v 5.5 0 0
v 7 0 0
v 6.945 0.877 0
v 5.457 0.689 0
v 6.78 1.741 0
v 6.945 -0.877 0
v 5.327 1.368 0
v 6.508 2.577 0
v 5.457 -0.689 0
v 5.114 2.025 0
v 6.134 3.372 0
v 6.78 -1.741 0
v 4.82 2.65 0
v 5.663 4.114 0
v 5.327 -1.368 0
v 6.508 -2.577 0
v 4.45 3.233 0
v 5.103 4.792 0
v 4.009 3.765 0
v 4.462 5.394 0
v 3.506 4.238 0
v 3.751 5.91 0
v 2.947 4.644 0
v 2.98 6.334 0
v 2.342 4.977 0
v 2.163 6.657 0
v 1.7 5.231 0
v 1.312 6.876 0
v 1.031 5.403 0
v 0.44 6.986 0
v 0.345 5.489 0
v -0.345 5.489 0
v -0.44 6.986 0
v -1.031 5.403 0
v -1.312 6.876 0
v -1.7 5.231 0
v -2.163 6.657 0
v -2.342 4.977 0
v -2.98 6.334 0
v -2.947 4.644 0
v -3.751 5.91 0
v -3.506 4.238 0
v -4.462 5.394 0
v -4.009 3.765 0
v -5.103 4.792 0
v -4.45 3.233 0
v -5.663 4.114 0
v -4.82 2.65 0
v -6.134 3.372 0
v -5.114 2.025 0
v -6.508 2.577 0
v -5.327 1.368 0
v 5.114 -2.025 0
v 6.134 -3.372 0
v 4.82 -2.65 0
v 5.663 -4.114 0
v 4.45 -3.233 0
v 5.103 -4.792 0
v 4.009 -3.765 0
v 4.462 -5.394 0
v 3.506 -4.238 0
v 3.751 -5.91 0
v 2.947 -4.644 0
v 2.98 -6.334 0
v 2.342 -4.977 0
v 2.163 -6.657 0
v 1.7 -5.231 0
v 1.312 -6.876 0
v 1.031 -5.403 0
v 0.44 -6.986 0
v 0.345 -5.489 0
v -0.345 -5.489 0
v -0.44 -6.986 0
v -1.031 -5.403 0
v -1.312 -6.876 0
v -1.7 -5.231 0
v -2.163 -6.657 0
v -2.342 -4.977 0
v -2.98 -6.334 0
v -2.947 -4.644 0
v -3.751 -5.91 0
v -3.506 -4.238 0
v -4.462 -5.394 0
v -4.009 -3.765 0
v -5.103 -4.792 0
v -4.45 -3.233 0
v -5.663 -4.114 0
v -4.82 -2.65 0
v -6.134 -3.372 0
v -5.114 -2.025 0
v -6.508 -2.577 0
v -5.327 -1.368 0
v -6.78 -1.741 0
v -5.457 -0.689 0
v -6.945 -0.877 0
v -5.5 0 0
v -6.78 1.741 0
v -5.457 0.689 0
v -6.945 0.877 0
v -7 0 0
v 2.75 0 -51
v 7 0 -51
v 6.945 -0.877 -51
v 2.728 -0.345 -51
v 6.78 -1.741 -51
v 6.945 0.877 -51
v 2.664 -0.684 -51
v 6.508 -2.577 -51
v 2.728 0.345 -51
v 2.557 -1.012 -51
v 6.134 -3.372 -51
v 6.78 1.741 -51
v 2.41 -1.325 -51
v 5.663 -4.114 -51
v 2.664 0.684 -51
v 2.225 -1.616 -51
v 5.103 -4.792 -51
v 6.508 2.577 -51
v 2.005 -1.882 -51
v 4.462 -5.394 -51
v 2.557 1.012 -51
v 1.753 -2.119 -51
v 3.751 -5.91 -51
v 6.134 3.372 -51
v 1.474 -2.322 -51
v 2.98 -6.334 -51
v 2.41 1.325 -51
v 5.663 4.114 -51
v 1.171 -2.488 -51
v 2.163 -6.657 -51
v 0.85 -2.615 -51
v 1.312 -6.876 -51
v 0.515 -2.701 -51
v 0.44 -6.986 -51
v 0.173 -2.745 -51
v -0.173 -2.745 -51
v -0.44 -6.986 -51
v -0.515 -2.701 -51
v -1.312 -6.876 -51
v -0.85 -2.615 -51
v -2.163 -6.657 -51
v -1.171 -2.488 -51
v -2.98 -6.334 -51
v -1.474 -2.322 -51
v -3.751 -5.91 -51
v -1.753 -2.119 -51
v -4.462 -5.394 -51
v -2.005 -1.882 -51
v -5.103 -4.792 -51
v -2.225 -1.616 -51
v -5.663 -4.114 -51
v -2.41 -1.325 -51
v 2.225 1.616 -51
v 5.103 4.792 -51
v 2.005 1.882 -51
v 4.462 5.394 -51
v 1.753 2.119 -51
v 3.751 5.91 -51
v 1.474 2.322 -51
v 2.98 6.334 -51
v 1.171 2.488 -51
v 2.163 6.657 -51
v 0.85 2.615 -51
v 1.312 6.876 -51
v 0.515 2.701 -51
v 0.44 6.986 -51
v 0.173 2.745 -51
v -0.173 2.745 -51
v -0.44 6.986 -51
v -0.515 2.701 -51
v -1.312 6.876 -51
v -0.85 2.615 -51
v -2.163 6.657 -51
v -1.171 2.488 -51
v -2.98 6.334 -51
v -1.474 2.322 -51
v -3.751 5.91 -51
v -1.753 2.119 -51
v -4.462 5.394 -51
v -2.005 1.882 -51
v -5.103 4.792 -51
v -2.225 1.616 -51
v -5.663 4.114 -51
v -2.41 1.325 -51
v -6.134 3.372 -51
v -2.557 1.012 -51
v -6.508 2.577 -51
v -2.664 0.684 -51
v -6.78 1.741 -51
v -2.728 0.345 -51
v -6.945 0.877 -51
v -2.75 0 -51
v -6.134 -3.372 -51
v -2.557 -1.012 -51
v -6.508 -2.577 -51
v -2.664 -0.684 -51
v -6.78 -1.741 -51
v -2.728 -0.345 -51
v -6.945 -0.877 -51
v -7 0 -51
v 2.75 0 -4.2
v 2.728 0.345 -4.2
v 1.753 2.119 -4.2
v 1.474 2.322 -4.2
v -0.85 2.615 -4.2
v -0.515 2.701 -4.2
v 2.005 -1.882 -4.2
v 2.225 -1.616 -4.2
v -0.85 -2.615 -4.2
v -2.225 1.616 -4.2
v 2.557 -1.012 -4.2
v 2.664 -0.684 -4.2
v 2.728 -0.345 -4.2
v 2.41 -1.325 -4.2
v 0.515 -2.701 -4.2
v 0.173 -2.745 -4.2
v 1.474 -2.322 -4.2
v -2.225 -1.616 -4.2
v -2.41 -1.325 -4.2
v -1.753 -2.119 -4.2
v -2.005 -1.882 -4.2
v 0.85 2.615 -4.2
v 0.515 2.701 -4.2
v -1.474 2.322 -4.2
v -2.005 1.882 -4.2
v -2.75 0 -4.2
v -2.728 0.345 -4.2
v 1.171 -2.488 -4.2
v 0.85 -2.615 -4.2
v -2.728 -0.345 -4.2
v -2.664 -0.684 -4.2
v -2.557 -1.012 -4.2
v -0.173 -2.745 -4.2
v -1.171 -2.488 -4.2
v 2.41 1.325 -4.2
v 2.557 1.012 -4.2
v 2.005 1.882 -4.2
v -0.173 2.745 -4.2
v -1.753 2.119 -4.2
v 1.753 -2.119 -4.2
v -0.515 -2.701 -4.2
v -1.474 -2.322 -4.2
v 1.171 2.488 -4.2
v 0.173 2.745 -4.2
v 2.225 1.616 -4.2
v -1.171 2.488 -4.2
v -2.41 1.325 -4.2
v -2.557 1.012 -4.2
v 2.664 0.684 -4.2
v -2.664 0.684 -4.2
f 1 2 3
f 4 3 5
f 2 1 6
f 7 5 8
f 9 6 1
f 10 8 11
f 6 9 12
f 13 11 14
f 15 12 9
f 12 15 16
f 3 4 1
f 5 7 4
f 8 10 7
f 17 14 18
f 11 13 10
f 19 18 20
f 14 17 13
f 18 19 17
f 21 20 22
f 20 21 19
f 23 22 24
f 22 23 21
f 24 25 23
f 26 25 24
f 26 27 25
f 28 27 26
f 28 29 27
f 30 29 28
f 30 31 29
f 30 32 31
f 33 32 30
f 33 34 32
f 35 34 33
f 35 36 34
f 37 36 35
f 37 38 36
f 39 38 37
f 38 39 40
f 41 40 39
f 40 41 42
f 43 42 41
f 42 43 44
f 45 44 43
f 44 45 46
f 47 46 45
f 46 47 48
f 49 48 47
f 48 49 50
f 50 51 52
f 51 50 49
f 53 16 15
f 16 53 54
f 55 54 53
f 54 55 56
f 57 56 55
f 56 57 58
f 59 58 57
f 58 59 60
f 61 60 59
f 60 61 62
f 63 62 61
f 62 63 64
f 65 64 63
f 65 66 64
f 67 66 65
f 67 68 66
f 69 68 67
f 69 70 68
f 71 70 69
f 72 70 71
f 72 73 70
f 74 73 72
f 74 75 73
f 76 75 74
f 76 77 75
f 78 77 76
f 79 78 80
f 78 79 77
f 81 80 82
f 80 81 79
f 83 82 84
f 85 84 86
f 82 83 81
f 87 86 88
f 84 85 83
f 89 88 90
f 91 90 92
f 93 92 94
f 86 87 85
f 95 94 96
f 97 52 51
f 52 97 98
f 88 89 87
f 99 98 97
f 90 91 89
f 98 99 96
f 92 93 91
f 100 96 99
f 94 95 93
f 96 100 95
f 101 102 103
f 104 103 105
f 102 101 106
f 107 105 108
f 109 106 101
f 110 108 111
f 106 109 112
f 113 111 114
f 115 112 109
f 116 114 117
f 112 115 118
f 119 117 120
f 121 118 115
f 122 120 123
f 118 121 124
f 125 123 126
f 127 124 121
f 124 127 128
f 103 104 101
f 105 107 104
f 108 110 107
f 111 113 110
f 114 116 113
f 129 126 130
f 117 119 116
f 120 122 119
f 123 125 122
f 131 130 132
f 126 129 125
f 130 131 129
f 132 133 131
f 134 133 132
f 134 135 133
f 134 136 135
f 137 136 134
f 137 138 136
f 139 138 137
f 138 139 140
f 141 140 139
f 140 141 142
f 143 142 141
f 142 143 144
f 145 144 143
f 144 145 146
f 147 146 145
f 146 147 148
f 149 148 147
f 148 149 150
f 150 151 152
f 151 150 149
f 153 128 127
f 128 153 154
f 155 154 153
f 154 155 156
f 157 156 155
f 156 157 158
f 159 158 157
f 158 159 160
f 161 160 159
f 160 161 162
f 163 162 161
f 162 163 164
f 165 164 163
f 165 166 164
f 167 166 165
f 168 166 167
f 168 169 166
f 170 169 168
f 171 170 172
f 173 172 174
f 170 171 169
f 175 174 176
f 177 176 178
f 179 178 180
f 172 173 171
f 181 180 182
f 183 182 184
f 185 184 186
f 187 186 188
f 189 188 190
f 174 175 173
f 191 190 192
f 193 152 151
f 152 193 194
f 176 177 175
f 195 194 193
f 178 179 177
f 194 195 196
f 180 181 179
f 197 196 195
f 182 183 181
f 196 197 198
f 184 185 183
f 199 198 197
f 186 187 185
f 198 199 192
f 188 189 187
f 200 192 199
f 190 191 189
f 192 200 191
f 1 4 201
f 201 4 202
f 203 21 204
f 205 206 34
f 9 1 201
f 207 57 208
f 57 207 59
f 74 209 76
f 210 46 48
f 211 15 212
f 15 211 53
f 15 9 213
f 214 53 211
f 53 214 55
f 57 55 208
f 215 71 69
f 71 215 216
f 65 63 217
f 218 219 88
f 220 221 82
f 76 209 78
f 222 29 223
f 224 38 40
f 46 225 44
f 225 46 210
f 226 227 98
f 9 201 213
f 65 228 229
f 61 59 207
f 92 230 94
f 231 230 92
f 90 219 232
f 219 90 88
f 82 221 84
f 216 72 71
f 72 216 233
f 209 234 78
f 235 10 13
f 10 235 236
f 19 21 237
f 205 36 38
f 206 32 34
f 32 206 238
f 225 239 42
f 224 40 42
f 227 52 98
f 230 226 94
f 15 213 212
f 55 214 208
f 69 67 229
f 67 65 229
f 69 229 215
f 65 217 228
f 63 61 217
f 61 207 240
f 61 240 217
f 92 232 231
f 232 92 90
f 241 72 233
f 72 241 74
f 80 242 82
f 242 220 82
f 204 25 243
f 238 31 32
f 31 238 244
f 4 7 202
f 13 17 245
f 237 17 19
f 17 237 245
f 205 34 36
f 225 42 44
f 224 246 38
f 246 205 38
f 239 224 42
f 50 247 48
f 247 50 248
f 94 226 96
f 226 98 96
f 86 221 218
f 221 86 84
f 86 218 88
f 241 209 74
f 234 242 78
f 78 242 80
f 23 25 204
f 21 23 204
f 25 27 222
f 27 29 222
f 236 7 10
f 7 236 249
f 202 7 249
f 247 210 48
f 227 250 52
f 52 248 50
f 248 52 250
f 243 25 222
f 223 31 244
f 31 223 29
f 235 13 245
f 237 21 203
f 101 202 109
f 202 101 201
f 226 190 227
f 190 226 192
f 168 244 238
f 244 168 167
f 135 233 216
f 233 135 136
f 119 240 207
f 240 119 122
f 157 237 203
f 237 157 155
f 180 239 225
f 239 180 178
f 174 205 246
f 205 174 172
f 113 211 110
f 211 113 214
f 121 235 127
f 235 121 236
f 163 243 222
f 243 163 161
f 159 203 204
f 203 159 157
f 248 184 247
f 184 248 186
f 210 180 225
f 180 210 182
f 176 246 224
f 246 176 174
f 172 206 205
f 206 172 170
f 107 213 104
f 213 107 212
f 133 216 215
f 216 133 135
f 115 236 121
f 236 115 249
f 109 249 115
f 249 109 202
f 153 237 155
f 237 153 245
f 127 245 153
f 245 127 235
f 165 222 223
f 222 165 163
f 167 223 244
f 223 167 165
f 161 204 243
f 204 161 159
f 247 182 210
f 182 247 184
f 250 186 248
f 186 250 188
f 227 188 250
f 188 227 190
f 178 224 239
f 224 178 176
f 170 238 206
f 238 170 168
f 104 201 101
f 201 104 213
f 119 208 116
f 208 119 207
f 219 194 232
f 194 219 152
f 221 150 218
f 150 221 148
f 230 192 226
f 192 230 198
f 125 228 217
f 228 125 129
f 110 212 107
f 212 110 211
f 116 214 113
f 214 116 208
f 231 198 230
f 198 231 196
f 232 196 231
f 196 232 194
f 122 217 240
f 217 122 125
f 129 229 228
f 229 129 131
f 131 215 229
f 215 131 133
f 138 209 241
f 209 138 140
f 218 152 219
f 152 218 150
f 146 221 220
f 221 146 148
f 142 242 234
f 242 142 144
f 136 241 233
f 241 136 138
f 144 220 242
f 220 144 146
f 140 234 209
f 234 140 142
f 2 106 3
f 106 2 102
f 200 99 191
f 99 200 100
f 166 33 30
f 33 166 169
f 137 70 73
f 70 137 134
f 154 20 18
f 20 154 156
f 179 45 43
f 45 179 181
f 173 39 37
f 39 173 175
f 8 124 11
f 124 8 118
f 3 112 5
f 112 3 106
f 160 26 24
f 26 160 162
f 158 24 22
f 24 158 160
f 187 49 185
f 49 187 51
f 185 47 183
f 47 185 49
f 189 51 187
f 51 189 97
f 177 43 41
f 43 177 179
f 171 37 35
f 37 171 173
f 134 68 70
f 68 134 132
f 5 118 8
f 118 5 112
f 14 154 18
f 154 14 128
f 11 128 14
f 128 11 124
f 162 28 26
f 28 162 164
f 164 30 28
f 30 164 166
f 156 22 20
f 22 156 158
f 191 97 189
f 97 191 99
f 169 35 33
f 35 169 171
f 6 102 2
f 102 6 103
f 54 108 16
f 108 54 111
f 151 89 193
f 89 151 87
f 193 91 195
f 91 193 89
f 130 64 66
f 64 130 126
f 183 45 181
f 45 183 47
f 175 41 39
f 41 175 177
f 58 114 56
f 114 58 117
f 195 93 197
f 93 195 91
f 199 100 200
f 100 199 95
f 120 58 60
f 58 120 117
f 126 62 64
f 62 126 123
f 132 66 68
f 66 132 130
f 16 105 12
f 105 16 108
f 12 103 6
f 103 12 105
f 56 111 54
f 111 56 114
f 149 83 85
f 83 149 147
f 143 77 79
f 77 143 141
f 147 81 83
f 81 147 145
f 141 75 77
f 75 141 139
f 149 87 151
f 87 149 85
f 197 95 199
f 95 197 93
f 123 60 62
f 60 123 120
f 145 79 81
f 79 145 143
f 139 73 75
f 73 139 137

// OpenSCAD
$fn = 50;


difference() {
	union() {
		translate(v = [0, 0, -51.0000000000]) {
			cylinder(h = 51, r = 7.0000000000);
		}
		cylinder(h = 0, r = 17.0000000000);
	}
	union() {
		translate(v = [0, 0, 0]) {
			rotate(a = [0, 0, 0]) {
				difference() {
					union() {
						#translate(v = [0, 0, -51.0000000000]) {
							cylinder(h = 51, r = 2.2500000000);
						}
						#translate(v = [0, 0, -4.2000000000]) {
							cylinder(h = 4.2000000000, r = 7.0000000000, r1 = 2.7500000000, r2 = 5.5000000000);
						}
						#translate(v = [0, 0, -51.0000000000]) {
							cylinder(h = 51, r = 2.7500000000);
						}
						#translate(v = [0, 0, -51.0000000000]) {
							cylinder(h = 51, r = 2.2500000000);
						}
					}
					union();
				}
			}
		}
	}
}
